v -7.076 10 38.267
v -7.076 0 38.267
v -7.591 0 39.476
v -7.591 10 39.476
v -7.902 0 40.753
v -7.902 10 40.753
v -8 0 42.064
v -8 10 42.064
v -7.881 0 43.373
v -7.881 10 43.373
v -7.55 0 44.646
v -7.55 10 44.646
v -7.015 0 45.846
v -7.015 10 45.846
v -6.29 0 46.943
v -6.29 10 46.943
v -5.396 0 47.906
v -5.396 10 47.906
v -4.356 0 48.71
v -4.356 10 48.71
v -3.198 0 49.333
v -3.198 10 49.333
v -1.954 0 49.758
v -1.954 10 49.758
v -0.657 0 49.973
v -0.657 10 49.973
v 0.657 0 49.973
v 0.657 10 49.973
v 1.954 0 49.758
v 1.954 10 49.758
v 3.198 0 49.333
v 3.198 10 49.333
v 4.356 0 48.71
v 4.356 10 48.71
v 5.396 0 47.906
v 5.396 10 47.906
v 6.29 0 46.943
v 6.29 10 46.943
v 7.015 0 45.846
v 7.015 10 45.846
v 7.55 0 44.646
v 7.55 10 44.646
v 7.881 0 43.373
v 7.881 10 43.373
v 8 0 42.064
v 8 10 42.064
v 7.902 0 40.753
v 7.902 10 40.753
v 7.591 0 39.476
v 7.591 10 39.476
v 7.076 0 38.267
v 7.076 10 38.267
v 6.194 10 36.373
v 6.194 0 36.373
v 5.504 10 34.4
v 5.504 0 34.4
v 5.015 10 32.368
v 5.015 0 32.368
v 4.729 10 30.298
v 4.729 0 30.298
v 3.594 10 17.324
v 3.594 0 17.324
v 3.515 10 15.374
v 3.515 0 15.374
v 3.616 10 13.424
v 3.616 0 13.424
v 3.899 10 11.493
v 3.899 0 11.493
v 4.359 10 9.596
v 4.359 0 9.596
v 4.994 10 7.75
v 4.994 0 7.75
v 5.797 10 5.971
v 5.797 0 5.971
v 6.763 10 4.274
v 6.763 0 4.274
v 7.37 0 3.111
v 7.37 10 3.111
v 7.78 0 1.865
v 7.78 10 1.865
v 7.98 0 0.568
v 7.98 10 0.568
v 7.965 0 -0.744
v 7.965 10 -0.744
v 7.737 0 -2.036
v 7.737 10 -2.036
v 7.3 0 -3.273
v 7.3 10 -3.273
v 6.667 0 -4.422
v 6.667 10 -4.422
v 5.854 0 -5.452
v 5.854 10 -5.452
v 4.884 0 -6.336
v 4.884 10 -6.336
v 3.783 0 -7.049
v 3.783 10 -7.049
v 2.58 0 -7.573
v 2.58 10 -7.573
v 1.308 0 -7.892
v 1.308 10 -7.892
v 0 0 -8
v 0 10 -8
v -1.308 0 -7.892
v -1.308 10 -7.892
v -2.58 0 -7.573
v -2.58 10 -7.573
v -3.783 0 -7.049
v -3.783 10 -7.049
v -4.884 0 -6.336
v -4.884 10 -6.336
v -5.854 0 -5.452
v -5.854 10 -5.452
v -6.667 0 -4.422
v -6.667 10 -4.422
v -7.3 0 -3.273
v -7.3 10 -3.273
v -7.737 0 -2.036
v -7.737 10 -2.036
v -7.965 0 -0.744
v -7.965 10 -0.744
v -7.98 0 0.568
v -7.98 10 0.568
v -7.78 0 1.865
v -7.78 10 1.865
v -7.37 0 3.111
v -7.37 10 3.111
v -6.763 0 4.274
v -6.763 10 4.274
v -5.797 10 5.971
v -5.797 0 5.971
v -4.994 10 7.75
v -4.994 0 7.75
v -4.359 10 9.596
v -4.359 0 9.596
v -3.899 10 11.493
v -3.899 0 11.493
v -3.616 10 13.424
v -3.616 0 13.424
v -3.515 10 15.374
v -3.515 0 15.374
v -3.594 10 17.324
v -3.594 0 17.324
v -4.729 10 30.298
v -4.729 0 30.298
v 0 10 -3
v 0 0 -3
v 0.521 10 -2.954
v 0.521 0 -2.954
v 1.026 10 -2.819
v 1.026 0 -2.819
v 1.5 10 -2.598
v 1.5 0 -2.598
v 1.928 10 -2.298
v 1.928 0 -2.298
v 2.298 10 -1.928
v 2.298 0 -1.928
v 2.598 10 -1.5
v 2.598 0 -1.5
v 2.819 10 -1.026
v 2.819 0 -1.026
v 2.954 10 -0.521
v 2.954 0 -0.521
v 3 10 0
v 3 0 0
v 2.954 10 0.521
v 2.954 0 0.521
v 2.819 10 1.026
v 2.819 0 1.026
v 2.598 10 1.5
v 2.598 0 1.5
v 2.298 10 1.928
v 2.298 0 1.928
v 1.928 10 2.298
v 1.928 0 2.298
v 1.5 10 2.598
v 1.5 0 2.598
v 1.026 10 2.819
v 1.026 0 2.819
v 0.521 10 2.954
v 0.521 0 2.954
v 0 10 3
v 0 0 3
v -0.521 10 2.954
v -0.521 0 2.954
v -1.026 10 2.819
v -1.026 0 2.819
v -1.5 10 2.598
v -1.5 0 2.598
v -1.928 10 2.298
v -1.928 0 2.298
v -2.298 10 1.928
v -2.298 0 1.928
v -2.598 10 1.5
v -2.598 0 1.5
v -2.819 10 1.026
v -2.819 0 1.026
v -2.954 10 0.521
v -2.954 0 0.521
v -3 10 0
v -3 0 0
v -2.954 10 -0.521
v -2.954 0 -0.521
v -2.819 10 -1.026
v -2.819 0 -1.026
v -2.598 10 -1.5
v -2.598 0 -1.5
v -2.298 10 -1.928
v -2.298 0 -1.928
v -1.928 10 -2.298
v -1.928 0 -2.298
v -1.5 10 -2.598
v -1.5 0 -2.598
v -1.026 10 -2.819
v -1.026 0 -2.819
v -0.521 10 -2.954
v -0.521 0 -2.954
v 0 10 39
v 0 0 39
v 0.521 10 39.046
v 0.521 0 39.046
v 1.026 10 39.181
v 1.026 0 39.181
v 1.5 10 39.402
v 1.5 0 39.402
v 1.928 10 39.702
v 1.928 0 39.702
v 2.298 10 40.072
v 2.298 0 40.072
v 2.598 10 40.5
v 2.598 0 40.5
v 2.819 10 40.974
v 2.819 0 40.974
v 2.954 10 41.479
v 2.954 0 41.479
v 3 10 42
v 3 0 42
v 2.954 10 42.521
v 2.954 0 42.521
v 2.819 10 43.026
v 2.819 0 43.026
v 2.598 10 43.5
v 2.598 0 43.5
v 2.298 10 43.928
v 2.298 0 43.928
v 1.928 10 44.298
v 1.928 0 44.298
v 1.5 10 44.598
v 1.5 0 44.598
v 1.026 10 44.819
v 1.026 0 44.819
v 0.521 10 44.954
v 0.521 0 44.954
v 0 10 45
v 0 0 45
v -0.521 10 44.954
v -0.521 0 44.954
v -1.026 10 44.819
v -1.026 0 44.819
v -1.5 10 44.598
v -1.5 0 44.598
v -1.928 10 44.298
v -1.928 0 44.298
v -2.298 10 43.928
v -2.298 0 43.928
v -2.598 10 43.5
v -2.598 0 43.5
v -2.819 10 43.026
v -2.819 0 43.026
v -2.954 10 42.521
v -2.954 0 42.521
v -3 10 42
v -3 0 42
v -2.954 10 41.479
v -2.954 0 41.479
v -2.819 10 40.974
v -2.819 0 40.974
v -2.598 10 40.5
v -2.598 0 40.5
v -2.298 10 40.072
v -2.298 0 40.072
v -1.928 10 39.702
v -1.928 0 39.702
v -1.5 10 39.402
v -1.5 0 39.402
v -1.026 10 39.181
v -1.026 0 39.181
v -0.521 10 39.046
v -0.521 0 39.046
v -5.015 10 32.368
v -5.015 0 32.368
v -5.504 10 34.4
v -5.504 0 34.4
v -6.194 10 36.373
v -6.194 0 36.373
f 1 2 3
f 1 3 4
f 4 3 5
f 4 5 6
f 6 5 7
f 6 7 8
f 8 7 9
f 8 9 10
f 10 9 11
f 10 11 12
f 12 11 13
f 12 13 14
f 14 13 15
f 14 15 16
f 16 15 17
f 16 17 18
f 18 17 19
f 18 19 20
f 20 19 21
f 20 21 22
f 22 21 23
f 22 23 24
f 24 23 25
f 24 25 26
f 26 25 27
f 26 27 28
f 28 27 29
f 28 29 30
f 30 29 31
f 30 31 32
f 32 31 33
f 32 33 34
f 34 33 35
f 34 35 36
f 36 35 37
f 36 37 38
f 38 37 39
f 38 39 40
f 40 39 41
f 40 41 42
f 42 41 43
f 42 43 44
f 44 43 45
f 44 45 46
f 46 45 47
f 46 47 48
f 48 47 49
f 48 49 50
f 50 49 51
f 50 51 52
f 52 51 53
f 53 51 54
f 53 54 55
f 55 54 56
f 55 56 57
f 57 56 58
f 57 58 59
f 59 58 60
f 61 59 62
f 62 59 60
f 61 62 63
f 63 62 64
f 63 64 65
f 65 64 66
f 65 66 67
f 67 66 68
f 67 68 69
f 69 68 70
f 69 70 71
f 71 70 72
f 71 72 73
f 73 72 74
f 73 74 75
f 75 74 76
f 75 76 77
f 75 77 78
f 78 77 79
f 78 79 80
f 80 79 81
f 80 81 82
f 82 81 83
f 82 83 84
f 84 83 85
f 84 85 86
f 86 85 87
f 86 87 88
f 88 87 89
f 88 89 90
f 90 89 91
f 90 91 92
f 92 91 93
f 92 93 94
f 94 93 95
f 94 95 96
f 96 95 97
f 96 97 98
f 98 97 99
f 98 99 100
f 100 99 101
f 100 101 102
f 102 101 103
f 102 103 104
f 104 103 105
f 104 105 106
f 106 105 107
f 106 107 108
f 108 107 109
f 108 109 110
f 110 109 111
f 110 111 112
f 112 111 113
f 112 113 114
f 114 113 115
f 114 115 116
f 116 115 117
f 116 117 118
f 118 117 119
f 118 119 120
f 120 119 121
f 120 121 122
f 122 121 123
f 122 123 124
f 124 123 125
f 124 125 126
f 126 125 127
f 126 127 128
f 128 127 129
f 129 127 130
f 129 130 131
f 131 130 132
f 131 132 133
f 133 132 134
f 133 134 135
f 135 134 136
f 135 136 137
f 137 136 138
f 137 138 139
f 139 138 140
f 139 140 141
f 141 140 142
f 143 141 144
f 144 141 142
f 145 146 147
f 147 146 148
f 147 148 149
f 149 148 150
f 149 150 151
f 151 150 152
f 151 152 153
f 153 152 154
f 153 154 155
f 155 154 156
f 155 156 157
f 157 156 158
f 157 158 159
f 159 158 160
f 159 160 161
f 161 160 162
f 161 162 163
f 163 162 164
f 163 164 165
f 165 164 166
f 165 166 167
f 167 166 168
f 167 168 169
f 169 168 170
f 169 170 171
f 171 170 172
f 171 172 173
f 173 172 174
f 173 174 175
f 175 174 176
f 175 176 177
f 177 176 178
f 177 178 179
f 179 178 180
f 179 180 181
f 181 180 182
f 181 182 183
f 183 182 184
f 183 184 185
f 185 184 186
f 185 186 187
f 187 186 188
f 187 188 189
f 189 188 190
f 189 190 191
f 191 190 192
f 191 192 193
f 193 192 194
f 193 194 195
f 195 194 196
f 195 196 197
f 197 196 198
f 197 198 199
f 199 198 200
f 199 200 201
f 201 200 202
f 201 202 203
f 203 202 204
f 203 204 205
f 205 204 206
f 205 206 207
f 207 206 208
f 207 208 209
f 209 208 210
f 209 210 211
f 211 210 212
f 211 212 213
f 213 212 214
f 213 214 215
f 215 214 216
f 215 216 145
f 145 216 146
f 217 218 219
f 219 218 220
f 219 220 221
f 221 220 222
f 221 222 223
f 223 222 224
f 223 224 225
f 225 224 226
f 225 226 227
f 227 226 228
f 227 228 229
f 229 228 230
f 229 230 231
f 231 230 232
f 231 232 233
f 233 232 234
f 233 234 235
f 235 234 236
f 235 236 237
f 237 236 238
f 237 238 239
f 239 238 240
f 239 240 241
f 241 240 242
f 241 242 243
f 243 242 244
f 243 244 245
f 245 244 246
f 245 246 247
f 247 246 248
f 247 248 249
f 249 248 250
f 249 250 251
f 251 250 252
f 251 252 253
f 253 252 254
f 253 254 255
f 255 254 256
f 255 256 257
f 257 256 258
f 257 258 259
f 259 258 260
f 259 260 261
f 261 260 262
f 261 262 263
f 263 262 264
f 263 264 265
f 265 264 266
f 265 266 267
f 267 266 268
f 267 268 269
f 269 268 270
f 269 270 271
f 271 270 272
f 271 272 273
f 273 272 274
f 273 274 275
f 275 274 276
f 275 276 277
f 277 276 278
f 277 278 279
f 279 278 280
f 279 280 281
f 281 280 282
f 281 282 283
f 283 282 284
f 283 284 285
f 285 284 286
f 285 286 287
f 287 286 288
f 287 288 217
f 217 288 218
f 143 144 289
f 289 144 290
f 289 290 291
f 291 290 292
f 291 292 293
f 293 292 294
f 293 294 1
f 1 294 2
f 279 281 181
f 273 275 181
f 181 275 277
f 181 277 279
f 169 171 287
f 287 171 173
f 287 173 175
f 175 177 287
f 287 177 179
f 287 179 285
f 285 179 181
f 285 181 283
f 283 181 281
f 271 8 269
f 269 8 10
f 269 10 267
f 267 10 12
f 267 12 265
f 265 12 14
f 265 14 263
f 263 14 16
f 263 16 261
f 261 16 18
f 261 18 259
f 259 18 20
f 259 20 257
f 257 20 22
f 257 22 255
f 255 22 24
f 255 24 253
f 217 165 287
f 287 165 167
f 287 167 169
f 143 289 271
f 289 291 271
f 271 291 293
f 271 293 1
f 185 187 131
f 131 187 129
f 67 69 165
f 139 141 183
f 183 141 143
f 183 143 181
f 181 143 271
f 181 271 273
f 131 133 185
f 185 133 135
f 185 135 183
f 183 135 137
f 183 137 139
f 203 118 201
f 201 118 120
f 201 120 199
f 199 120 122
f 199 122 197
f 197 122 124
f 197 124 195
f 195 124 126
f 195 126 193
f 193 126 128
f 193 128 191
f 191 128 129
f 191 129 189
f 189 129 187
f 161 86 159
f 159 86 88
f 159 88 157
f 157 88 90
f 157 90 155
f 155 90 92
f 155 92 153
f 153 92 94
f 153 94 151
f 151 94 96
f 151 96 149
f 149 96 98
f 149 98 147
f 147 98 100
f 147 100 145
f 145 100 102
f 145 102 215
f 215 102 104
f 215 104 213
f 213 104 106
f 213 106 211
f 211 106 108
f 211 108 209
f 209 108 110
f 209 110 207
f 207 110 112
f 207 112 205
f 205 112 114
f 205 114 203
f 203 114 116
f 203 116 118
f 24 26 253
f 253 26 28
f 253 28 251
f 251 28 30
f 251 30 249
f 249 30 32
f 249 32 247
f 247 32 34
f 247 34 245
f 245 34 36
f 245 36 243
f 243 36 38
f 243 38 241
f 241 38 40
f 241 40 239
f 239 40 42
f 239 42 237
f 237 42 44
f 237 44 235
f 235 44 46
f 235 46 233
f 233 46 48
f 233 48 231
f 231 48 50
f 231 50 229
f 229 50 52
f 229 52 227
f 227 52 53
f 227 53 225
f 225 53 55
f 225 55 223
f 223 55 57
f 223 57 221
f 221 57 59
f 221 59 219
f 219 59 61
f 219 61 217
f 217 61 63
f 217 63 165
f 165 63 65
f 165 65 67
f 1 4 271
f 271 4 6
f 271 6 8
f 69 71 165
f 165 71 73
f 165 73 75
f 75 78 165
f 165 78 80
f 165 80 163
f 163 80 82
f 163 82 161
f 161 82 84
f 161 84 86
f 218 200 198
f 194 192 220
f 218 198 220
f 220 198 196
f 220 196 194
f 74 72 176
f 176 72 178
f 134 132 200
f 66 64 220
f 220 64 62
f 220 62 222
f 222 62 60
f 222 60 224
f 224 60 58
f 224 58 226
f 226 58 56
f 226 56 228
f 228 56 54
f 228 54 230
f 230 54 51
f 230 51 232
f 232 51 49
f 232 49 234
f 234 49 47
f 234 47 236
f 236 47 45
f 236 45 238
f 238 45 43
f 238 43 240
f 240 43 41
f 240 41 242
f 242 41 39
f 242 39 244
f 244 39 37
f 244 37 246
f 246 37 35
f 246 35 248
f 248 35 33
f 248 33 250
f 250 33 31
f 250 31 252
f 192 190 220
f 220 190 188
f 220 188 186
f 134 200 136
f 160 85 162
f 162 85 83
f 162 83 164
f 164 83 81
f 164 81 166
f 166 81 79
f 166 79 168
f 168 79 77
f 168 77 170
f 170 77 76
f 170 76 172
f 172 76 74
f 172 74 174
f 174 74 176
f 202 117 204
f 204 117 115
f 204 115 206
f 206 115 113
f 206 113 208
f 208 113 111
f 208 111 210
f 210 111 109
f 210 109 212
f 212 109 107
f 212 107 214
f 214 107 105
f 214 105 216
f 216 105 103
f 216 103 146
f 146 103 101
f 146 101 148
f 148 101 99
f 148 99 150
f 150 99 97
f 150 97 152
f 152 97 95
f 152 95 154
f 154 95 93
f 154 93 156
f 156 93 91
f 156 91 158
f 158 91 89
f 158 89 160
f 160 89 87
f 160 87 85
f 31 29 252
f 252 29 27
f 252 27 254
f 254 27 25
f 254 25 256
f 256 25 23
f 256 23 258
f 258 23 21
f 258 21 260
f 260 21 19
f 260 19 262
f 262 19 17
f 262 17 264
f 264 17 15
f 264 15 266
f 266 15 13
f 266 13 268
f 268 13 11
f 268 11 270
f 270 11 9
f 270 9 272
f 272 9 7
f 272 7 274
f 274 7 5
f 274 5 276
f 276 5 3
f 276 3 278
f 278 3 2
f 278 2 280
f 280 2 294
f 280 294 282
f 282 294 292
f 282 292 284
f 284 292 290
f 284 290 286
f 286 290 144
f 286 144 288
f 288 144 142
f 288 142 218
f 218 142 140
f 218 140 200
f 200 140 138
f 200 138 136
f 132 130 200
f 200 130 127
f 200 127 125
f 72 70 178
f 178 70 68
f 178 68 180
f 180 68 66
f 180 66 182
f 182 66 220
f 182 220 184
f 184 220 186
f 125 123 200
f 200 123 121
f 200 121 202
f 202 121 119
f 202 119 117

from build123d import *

# Parameters (mm, degrees)
SKETCH_1_R      = 3
EXTRUDE_1_DEPTH = 10


with BuildPart() as part:
    # Эскиз1 → Бобышка-Вытянуть1 (new body)
    with BuildSketch(Plane(origin=(0, 0, 0), x_dir=(1, 0, 0), z_dir=(0, 1, 0))):
        with BuildLine():
            ThreePointArc((-7.075672476, -38.267057593), (0, -50), (7.075672476, -38.267057593))
            ThreePointArc((7.075672476, -38.267057593), (5.504494197, -34.399886744), (4.729224066, -30.298354373))
            Line((4.729224066, -30.298354373), (3.594110581, -17.323947875))
            ThreePointArc((3.594110581, -17.323947875), (4.107078394, -10.538940279), (6.762537722, -4.27411787))
            ThreePointArc((6.762537722, -4.27411787), (0, 8), (-6.762537722, -4.27411787))
            ThreePointArc((-6.762537722, -4.27411787), (-4.107078394, -10.538940279), (-3.594110581, -17.323947875))
            Line((-3.594110581, -17.323947875), (-4.729224066, -30.298354373))
            ThreePointArc((-4.729224066, -30.298354373), (-5.504494197, -34.399886744), (-7.075672476, -38.267057593))
        make_face()
        with Locations((0, -42)):
            Circle(SKETCH_1_R, mode=Mode.SUBTRACT)
        Circle(SKETCH_1_R, mode=Mode.SUBTRACT)
    extrude(amount=EXTRUDE_1_DEPTH)


solid = part.part
